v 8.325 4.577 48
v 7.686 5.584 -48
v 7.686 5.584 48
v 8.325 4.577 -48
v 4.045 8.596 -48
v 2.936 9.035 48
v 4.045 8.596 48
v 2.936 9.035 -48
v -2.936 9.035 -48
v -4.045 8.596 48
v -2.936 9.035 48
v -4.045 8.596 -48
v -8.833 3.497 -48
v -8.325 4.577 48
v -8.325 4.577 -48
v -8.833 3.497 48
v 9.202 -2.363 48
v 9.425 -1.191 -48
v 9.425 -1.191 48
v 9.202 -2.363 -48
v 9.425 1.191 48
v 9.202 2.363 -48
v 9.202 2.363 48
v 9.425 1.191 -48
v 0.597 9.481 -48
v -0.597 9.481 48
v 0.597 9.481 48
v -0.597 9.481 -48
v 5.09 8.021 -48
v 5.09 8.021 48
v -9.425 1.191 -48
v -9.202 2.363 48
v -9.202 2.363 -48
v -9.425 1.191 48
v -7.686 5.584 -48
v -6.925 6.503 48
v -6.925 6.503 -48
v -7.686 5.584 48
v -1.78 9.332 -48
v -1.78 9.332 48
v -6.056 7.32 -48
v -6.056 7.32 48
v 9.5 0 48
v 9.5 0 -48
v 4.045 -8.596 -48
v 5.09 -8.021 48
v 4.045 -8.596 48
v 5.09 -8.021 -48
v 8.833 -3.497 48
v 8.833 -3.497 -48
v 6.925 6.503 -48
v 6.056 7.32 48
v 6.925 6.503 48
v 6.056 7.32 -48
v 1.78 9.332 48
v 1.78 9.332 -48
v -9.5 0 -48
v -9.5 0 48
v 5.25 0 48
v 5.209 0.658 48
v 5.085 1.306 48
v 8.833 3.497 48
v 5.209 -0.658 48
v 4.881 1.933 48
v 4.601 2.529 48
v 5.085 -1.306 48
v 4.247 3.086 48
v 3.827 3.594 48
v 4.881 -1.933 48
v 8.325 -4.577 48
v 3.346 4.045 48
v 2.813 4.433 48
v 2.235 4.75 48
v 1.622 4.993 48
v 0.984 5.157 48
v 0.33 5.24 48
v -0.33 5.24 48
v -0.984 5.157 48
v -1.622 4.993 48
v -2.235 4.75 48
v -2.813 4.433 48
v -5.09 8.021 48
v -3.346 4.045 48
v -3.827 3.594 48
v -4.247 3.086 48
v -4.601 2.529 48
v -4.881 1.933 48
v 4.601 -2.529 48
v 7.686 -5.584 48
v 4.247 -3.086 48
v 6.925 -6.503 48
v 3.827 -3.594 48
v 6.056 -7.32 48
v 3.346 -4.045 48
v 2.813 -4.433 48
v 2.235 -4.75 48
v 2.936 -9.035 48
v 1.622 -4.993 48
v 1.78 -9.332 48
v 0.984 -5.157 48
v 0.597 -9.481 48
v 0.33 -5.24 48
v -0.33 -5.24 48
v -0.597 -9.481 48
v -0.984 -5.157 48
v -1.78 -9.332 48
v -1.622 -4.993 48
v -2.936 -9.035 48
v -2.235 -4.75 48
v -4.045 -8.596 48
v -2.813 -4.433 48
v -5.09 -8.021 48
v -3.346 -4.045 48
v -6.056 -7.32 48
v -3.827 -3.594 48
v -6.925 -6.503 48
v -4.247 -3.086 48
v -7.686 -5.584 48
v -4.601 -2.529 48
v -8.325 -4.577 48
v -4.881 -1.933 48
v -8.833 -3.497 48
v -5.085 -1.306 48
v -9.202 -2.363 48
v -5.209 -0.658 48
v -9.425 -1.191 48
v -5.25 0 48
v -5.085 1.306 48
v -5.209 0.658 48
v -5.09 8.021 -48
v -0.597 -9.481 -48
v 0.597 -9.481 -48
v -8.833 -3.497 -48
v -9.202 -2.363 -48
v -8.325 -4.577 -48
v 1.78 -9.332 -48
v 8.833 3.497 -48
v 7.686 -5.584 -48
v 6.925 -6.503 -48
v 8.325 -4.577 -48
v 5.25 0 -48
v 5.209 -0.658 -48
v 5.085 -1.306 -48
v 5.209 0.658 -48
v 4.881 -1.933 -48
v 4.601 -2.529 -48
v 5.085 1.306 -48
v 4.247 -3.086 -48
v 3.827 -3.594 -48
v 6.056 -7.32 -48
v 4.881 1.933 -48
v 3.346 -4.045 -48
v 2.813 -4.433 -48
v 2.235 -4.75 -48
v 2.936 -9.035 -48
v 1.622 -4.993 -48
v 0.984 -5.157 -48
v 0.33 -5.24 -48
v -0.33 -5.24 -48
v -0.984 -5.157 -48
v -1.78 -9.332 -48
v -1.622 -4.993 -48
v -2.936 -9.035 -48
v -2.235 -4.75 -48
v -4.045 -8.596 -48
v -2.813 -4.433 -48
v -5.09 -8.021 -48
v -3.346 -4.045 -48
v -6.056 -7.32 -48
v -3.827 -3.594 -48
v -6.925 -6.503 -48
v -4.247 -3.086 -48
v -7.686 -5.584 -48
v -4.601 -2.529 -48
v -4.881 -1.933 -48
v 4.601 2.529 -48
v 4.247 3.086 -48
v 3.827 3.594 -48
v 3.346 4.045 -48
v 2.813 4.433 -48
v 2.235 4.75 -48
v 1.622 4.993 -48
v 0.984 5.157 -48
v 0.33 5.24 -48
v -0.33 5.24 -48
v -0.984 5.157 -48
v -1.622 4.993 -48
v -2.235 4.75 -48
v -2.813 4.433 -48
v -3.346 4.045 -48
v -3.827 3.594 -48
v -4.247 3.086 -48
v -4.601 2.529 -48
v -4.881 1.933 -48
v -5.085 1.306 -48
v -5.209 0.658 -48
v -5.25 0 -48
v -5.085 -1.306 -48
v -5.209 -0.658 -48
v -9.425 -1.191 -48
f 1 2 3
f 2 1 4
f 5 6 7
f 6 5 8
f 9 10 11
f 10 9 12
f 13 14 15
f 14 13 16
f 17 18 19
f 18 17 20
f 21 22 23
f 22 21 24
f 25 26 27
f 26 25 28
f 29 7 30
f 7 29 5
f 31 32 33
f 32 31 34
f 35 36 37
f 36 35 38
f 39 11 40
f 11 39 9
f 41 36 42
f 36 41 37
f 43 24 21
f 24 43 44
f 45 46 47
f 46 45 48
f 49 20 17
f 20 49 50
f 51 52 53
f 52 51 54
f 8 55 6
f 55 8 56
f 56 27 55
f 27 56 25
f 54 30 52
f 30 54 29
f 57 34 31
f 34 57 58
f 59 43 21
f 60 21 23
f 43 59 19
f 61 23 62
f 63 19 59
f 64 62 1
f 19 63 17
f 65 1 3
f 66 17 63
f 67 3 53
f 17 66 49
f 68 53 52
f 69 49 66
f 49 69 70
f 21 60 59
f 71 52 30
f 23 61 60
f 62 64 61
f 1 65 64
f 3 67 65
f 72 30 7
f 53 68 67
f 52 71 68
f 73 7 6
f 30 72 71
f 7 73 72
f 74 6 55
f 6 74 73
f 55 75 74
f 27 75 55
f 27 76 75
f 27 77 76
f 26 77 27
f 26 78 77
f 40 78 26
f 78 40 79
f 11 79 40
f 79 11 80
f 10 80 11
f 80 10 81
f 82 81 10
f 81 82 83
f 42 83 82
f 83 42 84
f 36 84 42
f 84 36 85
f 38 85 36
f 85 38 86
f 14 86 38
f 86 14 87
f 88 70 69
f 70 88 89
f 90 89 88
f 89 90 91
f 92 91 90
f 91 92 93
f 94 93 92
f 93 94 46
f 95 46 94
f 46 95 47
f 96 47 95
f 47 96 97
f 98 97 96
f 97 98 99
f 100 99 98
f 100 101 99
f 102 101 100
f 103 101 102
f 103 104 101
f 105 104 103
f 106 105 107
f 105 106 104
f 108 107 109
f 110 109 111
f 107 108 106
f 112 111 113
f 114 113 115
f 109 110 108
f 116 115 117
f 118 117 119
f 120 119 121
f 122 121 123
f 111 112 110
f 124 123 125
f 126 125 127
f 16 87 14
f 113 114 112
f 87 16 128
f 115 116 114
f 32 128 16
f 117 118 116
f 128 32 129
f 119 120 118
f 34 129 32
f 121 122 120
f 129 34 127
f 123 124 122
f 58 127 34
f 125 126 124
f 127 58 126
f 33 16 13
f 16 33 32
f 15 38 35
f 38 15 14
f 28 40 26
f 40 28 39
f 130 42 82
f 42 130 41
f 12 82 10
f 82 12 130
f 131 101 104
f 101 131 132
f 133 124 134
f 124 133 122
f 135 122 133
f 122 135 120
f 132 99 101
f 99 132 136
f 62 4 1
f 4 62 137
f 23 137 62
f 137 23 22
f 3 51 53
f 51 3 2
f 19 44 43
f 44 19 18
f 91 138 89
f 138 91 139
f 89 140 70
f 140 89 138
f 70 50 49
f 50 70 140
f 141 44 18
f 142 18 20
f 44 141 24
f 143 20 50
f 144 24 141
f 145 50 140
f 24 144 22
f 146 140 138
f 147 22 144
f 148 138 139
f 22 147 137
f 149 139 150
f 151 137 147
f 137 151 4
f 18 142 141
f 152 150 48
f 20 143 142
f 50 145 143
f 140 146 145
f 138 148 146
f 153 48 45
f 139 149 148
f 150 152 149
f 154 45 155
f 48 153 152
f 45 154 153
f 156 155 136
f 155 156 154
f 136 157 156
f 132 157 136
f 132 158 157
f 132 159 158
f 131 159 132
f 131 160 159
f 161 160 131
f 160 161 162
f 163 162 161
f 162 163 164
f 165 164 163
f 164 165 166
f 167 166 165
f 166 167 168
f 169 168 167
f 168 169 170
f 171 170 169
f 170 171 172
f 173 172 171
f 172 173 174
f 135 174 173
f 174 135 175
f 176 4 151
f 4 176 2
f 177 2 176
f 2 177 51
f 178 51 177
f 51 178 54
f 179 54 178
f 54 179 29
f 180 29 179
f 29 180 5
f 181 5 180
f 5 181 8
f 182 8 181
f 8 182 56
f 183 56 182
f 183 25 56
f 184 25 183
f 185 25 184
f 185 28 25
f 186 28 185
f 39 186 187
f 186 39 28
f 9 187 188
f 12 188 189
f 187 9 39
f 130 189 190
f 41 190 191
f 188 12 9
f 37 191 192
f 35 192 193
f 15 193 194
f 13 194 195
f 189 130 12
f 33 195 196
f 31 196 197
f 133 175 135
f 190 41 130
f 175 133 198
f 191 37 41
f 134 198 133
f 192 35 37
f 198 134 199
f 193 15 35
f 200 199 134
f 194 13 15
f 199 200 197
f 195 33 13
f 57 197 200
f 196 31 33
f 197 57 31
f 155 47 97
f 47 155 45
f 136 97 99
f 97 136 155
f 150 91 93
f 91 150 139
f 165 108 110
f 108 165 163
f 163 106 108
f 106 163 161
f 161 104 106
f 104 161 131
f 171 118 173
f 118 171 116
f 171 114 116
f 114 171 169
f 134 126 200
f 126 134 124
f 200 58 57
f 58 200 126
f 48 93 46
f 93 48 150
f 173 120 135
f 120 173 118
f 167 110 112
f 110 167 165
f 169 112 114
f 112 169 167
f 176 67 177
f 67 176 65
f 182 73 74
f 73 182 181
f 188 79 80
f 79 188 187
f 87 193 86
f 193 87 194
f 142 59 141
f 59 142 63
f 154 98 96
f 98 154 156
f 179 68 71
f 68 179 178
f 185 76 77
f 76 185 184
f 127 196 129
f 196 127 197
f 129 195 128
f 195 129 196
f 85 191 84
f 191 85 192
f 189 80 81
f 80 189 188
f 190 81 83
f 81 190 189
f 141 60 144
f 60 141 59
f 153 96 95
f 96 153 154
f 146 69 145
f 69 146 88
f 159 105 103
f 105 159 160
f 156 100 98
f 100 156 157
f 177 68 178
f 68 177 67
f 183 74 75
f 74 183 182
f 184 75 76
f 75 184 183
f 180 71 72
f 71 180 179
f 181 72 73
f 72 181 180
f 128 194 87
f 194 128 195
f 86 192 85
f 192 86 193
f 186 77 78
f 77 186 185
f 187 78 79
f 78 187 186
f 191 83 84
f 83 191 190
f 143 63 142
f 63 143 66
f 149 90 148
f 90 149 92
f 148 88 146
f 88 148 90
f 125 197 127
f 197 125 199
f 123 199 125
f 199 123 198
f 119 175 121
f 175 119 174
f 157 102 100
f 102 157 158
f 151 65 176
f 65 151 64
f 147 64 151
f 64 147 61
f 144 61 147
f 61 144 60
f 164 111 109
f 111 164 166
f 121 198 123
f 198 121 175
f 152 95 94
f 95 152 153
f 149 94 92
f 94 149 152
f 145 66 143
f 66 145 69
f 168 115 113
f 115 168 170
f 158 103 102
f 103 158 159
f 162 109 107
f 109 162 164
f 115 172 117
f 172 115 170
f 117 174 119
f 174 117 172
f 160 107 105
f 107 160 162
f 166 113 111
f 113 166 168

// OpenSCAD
$fn = 50;


difference() {
	union() {
		translate(v = [0, 0, -48.0000000000]) {
			cylinder(h = 96, r = 9.5000000000);
		}
	}
	union() {
		translate(v = [0, 0, -100.0000000000]) {
			cylinder(h = 200, r = 5.2500000000);
		}
	}
}
